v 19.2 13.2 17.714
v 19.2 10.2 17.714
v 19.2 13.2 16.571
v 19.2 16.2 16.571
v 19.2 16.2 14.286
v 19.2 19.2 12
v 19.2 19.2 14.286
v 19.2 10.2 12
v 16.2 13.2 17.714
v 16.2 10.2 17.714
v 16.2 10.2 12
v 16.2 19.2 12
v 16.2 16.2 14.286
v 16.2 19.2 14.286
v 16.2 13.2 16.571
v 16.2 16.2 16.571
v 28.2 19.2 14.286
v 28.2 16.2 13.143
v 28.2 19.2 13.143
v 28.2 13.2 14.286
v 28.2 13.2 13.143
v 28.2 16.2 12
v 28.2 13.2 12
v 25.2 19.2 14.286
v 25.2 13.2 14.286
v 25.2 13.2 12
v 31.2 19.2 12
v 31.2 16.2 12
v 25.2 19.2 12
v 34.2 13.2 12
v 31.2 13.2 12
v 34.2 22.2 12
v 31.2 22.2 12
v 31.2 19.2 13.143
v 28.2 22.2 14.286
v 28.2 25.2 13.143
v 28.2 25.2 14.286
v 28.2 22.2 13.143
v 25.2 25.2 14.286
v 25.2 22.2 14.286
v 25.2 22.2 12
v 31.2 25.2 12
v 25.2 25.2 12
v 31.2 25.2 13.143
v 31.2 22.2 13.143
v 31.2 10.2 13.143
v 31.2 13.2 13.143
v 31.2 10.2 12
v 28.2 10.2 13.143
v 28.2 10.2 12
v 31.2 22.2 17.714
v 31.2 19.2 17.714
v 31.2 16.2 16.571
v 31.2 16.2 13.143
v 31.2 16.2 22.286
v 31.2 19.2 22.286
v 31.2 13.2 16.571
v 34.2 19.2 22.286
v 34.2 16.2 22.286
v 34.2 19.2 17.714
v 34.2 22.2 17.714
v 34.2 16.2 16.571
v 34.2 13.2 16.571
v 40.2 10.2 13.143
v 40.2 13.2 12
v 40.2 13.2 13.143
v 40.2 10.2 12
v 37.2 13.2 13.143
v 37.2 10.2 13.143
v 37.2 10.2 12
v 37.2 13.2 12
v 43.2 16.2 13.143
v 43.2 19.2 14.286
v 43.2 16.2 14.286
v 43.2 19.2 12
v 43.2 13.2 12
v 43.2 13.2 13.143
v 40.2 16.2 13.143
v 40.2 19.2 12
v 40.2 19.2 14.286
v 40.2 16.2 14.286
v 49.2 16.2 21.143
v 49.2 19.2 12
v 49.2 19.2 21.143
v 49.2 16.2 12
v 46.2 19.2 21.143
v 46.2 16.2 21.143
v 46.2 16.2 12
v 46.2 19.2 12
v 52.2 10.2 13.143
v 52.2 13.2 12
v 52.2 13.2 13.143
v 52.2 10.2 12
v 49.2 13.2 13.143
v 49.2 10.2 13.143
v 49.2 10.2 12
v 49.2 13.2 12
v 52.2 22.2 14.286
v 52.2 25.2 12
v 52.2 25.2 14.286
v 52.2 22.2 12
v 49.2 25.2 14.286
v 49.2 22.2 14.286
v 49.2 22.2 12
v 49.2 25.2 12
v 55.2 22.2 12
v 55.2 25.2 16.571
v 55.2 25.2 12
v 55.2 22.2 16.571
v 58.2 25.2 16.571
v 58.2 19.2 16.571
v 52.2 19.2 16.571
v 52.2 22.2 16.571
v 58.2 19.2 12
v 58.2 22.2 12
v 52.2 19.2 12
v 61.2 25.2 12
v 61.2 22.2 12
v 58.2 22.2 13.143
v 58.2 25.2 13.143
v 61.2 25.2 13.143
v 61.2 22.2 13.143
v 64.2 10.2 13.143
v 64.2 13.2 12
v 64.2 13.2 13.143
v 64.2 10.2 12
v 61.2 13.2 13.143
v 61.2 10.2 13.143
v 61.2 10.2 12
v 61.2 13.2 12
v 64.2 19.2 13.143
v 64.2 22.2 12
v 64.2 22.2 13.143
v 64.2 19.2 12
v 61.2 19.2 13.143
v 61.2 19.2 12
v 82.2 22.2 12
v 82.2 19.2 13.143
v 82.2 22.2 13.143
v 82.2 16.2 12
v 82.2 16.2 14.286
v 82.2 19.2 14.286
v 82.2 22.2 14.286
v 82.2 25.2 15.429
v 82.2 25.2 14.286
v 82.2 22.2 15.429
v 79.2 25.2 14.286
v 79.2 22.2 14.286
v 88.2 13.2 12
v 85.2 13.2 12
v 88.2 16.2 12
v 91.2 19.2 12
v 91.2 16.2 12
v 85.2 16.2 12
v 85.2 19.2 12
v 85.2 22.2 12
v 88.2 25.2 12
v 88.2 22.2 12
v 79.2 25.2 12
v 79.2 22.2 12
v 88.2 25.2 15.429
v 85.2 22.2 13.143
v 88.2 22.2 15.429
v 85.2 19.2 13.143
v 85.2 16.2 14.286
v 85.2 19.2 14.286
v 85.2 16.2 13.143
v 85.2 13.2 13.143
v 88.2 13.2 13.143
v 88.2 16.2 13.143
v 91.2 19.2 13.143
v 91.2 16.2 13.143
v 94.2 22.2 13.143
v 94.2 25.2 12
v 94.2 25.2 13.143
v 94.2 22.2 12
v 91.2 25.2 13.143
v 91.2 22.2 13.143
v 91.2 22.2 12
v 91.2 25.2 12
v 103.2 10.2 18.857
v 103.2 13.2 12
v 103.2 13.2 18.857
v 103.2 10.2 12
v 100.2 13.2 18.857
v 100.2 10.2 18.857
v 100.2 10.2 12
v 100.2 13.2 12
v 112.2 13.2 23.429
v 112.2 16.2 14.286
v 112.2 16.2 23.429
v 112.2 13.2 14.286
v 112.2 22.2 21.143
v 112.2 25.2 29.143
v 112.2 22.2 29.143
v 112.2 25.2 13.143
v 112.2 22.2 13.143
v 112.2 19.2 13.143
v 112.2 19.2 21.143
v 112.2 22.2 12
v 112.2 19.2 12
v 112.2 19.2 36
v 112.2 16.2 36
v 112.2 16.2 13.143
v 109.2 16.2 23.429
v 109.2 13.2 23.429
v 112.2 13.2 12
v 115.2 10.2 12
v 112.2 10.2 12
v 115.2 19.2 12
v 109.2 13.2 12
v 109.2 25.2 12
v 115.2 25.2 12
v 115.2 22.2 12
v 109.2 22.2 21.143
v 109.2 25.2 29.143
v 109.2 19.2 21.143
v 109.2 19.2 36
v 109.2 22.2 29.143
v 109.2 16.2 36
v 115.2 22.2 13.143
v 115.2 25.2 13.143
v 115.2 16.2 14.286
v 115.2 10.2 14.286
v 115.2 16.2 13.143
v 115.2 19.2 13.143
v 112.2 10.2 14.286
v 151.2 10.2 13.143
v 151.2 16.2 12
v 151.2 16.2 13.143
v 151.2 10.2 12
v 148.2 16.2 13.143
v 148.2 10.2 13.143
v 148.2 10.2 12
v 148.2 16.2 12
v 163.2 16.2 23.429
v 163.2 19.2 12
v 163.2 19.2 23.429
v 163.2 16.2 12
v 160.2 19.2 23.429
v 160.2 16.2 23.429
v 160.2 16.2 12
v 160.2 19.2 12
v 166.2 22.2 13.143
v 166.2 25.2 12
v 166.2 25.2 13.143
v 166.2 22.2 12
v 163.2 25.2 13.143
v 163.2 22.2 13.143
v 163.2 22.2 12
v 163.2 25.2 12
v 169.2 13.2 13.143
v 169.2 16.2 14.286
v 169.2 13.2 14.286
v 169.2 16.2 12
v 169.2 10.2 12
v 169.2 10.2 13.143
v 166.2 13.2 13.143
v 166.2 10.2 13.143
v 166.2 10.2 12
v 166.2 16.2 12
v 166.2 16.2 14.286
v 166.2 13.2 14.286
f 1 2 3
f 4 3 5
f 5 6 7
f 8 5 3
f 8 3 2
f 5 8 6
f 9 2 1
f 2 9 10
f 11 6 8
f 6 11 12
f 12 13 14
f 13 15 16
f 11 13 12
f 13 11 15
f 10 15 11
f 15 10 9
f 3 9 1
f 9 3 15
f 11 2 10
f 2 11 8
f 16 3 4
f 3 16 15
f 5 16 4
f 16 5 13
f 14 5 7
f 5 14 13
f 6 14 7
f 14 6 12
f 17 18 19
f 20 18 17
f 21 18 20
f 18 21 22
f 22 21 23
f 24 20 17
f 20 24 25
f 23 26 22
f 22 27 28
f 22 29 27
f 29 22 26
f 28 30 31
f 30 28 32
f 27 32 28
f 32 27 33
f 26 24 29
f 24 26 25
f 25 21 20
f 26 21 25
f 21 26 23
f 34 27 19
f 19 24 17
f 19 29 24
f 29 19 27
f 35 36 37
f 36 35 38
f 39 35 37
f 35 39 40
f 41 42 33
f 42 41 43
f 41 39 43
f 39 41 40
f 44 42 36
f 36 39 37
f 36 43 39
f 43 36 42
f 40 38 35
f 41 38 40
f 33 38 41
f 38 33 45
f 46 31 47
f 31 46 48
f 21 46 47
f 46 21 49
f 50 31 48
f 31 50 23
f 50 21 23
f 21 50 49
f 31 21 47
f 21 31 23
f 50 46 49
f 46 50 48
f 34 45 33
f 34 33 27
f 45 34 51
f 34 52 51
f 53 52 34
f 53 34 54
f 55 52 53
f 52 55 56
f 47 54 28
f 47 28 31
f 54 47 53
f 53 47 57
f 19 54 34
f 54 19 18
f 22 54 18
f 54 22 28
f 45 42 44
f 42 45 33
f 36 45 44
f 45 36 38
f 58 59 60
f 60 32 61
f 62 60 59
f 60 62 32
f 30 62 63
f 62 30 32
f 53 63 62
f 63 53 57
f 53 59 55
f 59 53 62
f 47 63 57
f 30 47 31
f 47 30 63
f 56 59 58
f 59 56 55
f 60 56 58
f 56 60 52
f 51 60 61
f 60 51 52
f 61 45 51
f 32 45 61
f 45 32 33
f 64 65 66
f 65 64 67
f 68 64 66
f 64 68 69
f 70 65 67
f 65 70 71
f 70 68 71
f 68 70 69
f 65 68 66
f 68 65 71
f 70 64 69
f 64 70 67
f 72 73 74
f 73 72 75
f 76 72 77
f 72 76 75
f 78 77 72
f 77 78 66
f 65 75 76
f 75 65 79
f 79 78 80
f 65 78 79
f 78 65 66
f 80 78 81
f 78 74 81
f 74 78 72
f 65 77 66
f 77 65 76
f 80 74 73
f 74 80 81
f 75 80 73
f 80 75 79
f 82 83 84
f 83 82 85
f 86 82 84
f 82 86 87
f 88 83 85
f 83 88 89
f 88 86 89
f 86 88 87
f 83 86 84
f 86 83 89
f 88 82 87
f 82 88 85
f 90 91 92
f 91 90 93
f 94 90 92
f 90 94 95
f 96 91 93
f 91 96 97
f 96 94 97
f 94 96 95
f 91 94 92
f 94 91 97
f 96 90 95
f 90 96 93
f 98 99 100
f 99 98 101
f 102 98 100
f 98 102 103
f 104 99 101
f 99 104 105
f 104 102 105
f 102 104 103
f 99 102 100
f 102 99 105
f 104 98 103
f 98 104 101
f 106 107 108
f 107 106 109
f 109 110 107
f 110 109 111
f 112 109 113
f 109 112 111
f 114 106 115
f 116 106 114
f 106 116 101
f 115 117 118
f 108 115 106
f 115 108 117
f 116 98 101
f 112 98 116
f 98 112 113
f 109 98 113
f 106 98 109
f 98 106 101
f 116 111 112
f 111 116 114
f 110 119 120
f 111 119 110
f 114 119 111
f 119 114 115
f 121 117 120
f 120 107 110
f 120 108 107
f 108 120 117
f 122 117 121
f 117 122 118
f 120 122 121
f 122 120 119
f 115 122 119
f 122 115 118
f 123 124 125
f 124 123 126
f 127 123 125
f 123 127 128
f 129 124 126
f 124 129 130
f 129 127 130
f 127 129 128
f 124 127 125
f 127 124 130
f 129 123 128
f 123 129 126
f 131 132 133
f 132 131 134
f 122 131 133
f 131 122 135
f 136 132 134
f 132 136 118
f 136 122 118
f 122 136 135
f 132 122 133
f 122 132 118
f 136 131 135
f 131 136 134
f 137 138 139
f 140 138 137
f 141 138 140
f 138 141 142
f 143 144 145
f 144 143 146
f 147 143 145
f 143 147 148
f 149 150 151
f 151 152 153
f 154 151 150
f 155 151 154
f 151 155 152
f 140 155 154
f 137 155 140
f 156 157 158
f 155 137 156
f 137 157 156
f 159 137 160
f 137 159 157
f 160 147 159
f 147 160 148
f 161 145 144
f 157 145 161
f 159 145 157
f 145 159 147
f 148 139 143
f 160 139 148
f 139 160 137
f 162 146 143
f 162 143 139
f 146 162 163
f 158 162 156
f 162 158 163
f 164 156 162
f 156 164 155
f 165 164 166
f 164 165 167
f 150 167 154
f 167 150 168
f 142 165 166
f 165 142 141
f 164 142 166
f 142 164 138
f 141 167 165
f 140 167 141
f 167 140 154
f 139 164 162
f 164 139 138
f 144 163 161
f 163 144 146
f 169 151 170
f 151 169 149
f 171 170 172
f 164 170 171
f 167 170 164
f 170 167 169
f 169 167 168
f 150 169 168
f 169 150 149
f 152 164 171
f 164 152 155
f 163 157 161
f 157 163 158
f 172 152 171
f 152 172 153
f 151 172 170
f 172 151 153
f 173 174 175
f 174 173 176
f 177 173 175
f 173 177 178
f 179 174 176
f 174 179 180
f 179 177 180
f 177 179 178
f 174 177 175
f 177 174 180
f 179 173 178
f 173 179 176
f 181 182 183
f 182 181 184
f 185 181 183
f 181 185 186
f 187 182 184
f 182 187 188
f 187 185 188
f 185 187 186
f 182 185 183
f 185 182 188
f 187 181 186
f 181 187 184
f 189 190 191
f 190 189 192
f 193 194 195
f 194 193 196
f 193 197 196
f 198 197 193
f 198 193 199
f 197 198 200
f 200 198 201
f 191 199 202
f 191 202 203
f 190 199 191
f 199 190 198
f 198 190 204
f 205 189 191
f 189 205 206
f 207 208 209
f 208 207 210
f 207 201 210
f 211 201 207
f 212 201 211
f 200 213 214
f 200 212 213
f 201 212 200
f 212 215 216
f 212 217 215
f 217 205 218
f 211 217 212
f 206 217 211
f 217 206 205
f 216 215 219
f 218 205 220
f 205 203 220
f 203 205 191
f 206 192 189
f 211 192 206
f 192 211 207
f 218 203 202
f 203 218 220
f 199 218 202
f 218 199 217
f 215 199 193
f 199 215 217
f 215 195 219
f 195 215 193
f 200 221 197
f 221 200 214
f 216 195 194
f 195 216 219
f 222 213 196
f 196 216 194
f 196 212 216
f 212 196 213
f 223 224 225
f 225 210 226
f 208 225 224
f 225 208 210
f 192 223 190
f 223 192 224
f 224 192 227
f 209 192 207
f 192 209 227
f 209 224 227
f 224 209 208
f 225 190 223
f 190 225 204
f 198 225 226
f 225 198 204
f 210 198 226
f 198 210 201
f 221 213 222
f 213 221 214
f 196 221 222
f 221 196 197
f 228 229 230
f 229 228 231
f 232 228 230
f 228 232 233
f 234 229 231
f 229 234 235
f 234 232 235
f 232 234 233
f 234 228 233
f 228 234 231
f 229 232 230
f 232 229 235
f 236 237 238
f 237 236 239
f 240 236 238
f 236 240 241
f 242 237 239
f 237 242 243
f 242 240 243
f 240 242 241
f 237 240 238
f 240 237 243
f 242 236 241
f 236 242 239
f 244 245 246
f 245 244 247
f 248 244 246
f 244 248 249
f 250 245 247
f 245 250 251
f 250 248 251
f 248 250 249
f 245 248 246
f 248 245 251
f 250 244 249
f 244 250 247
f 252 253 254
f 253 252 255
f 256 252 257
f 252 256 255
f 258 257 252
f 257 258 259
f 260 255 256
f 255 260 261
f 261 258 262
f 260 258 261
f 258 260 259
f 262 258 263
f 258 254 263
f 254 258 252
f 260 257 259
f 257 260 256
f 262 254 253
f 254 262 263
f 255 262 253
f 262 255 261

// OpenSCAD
union() {
	translate(v = [16.200000000000003, 10.200000000000001, 12.0]) {
		cube(size = [3.0, 3.0, 5.714285714285714]);
	}
	translate(v = [16.200000000000003, 13.200000000000001, 12.0]) {
		cube(size = [3.0, 3.0, 4.571428571428571]);
	}
	translate(v = [16.200000000000003, 16.200000000000003, 12.0]) {
		cube(size = [3.0, 3.0, 2.2857142857142856]);
	}
	translate(v = [25.200000000000003, 13.200000000000001, 12.0]) {
		cube(size = [3.0, 3.0, 2.2857142857142856]);
	}
	translate(v = [25.200000000000003, 16.200000000000003, 12.0]) {
		cube(size = [3.0, 3.0, 2.2857142857142856]);
	}
	translate(v = [25.200000000000003, 22.200000000000003, 12.0]) {
		cube(size = [3.0, 3.0, 2.2857142857142856]);
	}
	translate(v = [28.200000000000003, 10.200000000000001, 12.0]) {
		cube(size = [3.0, 3.0, 1.1428571428571428]);
	}
	translate(v = [28.200000000000003, 16.200000000000003, 12.0]) {
		cube(size = [3.0, 3.0, 1.1428571428571428]);
	}
	translate(v = [28.200000000000003, 22.200000000000003, 12.0]) {
		cube(size = [3.0, 3.0, 1.1428571428571428]);
	}
	translate(v = [31.200000000000003, 13.200000000000001, 12.0]) {
		cube(size = [3.0, 3.0, 4.571428571428571]);
	}
	translate(v = [31.200000000000003, 16.200000000000003, 12.0]) {
		cube(size = [3.0, 3.0, 10.285714285714286]);
	}
	translate(v = [31.200000000000003, 19.200000000000003, 12.0]) {
		cube(size = [3.0, 3.0, 5.714285714285714]);
	}
	translate(v = [37.2, 10.200000000000001, 12.0]) {
		cube(size = [3.0, 3.0, 1.1428571428571428]);
	}
	translate(v = [40.2, 13.200000000000001, 12.0]) {
		cube(size = [3.0, 3.0, 1.1428571428571428]);
	}
	translate(v = [40.2, 16.200000000000003, 12.0]) {
		cube(size = [3.0, 3.0, 2.2857142857142856]);
	}
	translate(v = [46.2, 16.200000000000003, 12.0]) {
		cube(size = [3.0, 3.0, 9.142857142857142]);
	}
	translate(v = [49.2, 10.200000000000001, 12.0]) {
		cube(size = [3.0, 3.0, 1.1428571428571428]);
	}
	translate(v = [49.2, 22.200000000000003, 12.0]) {
		cube(size = [3.0, 3.0, 2.2857142857142856]);
	}
	translate(v = [52.2, 19.200000000000003, 12.0]) {
		cube(size = [3.0, 3.0, 4.571428571428571]);
	}
	translate(v = [55.2, 19.200000000000003, 12.0]) {
		cube(size = [3.0, 3.0, 4.571428571428571]);
	}
	translate(v = [55.2, 22.200000000000003, 12.0]) {
		cube(size = [3.0, 3.0, 4.571428571428571]);
	}
	translate(v = [58.2, 22.200000000000003, 12.0]) {
		cube(size = [3.0, 3.0, 1.1428571428571428]);
	}
	translate(v = [61.2, 10.200000000000001, 12.0]) {
		cube(size = [3.0, 3.0, 1.1428571428571428]);
	}
	translate(v = [61.2, 19.200000000000003, 12.0]) {
		cube(size = [3.0, 3.0, 1.1428571428571428]);
	}
	translate(v = [79.2, 22.200000000000003, 12.0]) {
		cube(size = [3.0, 3.0, 2.2857142857142856]);
	}
	translate(v = [82.2, 16.200000000000003, 12.0]) {
		cube(size = [3.0, 3.0, 2.2857142857142856]);
	}
	translate(v = [82.2, 19.200000000000003, 12.0]) {
		cube(size = [3.0, 3.0, 1.1428571428571428]);
	}
	translate(v = [82.2, 22.200000000000003, 12.0]) {
		cube(size = [3.0, 3.0, 3.4285714285714284]);
	}
	translate(v = [85.2, 13.200000000000001, 12.0]) {
		cube(size = [3.0, 3.0, 1.1428571428571428]);
	}
	translate(v = [85.2, 16.200000000000003, 12.0]) {
		cube(size = [3.0, 3.0, 1.1428571428571428]);
	}
	translate(v = [85.2, 22.200000000000003, 12.0]) {
		cube(size = [3.0, 3.0, 3.4285714285714284]);
	}
	translate(v = [88.2, 16.200000000000003, 12.0]) {
		cube(size = [3.0, 3.0, 1.1428571428571428]);
	}
	translate(v = [91.2, 22.200000000000003, 12.0]) {
		cube(size = [3.0, 3.0, 1.1428571428571428]);
	}
	translate(v = [100.2, 10.200000000000001, 12.0]) {
		cube(size = [3.0, 3.0, 6.857142857142857]);
	}
	translate(v = [109.2, 13.200000000000001, 12.0]) {
		cube(size = [3.0, 3.0, 11.428571428571429]);
	}
	translate(v = [109.2, 16.200000000000003, 12.0]) {
		cube(size = [3.0, 3.0, 24.0]);
	}
	translate(v = [109.2, 19.200000000000003, 12.0]) {
		cube(size = [3.0, 3.0, 9.142857142857142]);
	}
	translate(v = [109.2, 22.200000000000003, 12.0]) {
		cube(size = [3.0, 3.0, 17.142857142857142]);
	}
	translate(v = [112.2, 10.200000000000001, 12.0]) {
		cube(size = [3.0, 3.0, 2.2857142857142856]);
	}
	translate(v = [112.2, 13.200000000000001, 12.0]) {
		cube(size = [3.0, 3.0, 2.2857142857142856]);
	}
	translate(v = [112.2, 16.200000000000003, 12.0]) {
		cube(size = [3.0, 3.0, 1.1428571428571428]);
	}
	translate(v = [112.2, 22.200000000000003, 12.0]) {
		cube(size = [3.0, 3.0, 1.1428571428571428]);
	}
	translate(v = [148.2, 10.200000000000001, 12.0]) {
		cube(size = [3.0, 3.0, 1.1428571428571428]);
	}
	translate(v = [148.2, 13.200000000000001, 12.0]) {
		cube(size = [3.0, 3.0, 1.1428571428571428]);
	}
	translate(v = [160.2, 16.200000000000003, 12.0]) {
		cube(size = [3.0, 3.0, 11.428571428571429]);
	}
	translate(v = [163.2, 22.200000000000003, 12.0]) {
		cube(size = [3.0, 3.0, 1.1428571428571428]);
	}
	translate(v = [166.2, 10.200000000000001, 12.0]) {
		cube(size = [3.0, 3.0, 1.1428571428571428]);
	}
	translate(v = [166.2, 13.200000000000001, 12.0]) {
		cube(size = [3.0, 3.0, 2.2857142857142856]);
	}
}
